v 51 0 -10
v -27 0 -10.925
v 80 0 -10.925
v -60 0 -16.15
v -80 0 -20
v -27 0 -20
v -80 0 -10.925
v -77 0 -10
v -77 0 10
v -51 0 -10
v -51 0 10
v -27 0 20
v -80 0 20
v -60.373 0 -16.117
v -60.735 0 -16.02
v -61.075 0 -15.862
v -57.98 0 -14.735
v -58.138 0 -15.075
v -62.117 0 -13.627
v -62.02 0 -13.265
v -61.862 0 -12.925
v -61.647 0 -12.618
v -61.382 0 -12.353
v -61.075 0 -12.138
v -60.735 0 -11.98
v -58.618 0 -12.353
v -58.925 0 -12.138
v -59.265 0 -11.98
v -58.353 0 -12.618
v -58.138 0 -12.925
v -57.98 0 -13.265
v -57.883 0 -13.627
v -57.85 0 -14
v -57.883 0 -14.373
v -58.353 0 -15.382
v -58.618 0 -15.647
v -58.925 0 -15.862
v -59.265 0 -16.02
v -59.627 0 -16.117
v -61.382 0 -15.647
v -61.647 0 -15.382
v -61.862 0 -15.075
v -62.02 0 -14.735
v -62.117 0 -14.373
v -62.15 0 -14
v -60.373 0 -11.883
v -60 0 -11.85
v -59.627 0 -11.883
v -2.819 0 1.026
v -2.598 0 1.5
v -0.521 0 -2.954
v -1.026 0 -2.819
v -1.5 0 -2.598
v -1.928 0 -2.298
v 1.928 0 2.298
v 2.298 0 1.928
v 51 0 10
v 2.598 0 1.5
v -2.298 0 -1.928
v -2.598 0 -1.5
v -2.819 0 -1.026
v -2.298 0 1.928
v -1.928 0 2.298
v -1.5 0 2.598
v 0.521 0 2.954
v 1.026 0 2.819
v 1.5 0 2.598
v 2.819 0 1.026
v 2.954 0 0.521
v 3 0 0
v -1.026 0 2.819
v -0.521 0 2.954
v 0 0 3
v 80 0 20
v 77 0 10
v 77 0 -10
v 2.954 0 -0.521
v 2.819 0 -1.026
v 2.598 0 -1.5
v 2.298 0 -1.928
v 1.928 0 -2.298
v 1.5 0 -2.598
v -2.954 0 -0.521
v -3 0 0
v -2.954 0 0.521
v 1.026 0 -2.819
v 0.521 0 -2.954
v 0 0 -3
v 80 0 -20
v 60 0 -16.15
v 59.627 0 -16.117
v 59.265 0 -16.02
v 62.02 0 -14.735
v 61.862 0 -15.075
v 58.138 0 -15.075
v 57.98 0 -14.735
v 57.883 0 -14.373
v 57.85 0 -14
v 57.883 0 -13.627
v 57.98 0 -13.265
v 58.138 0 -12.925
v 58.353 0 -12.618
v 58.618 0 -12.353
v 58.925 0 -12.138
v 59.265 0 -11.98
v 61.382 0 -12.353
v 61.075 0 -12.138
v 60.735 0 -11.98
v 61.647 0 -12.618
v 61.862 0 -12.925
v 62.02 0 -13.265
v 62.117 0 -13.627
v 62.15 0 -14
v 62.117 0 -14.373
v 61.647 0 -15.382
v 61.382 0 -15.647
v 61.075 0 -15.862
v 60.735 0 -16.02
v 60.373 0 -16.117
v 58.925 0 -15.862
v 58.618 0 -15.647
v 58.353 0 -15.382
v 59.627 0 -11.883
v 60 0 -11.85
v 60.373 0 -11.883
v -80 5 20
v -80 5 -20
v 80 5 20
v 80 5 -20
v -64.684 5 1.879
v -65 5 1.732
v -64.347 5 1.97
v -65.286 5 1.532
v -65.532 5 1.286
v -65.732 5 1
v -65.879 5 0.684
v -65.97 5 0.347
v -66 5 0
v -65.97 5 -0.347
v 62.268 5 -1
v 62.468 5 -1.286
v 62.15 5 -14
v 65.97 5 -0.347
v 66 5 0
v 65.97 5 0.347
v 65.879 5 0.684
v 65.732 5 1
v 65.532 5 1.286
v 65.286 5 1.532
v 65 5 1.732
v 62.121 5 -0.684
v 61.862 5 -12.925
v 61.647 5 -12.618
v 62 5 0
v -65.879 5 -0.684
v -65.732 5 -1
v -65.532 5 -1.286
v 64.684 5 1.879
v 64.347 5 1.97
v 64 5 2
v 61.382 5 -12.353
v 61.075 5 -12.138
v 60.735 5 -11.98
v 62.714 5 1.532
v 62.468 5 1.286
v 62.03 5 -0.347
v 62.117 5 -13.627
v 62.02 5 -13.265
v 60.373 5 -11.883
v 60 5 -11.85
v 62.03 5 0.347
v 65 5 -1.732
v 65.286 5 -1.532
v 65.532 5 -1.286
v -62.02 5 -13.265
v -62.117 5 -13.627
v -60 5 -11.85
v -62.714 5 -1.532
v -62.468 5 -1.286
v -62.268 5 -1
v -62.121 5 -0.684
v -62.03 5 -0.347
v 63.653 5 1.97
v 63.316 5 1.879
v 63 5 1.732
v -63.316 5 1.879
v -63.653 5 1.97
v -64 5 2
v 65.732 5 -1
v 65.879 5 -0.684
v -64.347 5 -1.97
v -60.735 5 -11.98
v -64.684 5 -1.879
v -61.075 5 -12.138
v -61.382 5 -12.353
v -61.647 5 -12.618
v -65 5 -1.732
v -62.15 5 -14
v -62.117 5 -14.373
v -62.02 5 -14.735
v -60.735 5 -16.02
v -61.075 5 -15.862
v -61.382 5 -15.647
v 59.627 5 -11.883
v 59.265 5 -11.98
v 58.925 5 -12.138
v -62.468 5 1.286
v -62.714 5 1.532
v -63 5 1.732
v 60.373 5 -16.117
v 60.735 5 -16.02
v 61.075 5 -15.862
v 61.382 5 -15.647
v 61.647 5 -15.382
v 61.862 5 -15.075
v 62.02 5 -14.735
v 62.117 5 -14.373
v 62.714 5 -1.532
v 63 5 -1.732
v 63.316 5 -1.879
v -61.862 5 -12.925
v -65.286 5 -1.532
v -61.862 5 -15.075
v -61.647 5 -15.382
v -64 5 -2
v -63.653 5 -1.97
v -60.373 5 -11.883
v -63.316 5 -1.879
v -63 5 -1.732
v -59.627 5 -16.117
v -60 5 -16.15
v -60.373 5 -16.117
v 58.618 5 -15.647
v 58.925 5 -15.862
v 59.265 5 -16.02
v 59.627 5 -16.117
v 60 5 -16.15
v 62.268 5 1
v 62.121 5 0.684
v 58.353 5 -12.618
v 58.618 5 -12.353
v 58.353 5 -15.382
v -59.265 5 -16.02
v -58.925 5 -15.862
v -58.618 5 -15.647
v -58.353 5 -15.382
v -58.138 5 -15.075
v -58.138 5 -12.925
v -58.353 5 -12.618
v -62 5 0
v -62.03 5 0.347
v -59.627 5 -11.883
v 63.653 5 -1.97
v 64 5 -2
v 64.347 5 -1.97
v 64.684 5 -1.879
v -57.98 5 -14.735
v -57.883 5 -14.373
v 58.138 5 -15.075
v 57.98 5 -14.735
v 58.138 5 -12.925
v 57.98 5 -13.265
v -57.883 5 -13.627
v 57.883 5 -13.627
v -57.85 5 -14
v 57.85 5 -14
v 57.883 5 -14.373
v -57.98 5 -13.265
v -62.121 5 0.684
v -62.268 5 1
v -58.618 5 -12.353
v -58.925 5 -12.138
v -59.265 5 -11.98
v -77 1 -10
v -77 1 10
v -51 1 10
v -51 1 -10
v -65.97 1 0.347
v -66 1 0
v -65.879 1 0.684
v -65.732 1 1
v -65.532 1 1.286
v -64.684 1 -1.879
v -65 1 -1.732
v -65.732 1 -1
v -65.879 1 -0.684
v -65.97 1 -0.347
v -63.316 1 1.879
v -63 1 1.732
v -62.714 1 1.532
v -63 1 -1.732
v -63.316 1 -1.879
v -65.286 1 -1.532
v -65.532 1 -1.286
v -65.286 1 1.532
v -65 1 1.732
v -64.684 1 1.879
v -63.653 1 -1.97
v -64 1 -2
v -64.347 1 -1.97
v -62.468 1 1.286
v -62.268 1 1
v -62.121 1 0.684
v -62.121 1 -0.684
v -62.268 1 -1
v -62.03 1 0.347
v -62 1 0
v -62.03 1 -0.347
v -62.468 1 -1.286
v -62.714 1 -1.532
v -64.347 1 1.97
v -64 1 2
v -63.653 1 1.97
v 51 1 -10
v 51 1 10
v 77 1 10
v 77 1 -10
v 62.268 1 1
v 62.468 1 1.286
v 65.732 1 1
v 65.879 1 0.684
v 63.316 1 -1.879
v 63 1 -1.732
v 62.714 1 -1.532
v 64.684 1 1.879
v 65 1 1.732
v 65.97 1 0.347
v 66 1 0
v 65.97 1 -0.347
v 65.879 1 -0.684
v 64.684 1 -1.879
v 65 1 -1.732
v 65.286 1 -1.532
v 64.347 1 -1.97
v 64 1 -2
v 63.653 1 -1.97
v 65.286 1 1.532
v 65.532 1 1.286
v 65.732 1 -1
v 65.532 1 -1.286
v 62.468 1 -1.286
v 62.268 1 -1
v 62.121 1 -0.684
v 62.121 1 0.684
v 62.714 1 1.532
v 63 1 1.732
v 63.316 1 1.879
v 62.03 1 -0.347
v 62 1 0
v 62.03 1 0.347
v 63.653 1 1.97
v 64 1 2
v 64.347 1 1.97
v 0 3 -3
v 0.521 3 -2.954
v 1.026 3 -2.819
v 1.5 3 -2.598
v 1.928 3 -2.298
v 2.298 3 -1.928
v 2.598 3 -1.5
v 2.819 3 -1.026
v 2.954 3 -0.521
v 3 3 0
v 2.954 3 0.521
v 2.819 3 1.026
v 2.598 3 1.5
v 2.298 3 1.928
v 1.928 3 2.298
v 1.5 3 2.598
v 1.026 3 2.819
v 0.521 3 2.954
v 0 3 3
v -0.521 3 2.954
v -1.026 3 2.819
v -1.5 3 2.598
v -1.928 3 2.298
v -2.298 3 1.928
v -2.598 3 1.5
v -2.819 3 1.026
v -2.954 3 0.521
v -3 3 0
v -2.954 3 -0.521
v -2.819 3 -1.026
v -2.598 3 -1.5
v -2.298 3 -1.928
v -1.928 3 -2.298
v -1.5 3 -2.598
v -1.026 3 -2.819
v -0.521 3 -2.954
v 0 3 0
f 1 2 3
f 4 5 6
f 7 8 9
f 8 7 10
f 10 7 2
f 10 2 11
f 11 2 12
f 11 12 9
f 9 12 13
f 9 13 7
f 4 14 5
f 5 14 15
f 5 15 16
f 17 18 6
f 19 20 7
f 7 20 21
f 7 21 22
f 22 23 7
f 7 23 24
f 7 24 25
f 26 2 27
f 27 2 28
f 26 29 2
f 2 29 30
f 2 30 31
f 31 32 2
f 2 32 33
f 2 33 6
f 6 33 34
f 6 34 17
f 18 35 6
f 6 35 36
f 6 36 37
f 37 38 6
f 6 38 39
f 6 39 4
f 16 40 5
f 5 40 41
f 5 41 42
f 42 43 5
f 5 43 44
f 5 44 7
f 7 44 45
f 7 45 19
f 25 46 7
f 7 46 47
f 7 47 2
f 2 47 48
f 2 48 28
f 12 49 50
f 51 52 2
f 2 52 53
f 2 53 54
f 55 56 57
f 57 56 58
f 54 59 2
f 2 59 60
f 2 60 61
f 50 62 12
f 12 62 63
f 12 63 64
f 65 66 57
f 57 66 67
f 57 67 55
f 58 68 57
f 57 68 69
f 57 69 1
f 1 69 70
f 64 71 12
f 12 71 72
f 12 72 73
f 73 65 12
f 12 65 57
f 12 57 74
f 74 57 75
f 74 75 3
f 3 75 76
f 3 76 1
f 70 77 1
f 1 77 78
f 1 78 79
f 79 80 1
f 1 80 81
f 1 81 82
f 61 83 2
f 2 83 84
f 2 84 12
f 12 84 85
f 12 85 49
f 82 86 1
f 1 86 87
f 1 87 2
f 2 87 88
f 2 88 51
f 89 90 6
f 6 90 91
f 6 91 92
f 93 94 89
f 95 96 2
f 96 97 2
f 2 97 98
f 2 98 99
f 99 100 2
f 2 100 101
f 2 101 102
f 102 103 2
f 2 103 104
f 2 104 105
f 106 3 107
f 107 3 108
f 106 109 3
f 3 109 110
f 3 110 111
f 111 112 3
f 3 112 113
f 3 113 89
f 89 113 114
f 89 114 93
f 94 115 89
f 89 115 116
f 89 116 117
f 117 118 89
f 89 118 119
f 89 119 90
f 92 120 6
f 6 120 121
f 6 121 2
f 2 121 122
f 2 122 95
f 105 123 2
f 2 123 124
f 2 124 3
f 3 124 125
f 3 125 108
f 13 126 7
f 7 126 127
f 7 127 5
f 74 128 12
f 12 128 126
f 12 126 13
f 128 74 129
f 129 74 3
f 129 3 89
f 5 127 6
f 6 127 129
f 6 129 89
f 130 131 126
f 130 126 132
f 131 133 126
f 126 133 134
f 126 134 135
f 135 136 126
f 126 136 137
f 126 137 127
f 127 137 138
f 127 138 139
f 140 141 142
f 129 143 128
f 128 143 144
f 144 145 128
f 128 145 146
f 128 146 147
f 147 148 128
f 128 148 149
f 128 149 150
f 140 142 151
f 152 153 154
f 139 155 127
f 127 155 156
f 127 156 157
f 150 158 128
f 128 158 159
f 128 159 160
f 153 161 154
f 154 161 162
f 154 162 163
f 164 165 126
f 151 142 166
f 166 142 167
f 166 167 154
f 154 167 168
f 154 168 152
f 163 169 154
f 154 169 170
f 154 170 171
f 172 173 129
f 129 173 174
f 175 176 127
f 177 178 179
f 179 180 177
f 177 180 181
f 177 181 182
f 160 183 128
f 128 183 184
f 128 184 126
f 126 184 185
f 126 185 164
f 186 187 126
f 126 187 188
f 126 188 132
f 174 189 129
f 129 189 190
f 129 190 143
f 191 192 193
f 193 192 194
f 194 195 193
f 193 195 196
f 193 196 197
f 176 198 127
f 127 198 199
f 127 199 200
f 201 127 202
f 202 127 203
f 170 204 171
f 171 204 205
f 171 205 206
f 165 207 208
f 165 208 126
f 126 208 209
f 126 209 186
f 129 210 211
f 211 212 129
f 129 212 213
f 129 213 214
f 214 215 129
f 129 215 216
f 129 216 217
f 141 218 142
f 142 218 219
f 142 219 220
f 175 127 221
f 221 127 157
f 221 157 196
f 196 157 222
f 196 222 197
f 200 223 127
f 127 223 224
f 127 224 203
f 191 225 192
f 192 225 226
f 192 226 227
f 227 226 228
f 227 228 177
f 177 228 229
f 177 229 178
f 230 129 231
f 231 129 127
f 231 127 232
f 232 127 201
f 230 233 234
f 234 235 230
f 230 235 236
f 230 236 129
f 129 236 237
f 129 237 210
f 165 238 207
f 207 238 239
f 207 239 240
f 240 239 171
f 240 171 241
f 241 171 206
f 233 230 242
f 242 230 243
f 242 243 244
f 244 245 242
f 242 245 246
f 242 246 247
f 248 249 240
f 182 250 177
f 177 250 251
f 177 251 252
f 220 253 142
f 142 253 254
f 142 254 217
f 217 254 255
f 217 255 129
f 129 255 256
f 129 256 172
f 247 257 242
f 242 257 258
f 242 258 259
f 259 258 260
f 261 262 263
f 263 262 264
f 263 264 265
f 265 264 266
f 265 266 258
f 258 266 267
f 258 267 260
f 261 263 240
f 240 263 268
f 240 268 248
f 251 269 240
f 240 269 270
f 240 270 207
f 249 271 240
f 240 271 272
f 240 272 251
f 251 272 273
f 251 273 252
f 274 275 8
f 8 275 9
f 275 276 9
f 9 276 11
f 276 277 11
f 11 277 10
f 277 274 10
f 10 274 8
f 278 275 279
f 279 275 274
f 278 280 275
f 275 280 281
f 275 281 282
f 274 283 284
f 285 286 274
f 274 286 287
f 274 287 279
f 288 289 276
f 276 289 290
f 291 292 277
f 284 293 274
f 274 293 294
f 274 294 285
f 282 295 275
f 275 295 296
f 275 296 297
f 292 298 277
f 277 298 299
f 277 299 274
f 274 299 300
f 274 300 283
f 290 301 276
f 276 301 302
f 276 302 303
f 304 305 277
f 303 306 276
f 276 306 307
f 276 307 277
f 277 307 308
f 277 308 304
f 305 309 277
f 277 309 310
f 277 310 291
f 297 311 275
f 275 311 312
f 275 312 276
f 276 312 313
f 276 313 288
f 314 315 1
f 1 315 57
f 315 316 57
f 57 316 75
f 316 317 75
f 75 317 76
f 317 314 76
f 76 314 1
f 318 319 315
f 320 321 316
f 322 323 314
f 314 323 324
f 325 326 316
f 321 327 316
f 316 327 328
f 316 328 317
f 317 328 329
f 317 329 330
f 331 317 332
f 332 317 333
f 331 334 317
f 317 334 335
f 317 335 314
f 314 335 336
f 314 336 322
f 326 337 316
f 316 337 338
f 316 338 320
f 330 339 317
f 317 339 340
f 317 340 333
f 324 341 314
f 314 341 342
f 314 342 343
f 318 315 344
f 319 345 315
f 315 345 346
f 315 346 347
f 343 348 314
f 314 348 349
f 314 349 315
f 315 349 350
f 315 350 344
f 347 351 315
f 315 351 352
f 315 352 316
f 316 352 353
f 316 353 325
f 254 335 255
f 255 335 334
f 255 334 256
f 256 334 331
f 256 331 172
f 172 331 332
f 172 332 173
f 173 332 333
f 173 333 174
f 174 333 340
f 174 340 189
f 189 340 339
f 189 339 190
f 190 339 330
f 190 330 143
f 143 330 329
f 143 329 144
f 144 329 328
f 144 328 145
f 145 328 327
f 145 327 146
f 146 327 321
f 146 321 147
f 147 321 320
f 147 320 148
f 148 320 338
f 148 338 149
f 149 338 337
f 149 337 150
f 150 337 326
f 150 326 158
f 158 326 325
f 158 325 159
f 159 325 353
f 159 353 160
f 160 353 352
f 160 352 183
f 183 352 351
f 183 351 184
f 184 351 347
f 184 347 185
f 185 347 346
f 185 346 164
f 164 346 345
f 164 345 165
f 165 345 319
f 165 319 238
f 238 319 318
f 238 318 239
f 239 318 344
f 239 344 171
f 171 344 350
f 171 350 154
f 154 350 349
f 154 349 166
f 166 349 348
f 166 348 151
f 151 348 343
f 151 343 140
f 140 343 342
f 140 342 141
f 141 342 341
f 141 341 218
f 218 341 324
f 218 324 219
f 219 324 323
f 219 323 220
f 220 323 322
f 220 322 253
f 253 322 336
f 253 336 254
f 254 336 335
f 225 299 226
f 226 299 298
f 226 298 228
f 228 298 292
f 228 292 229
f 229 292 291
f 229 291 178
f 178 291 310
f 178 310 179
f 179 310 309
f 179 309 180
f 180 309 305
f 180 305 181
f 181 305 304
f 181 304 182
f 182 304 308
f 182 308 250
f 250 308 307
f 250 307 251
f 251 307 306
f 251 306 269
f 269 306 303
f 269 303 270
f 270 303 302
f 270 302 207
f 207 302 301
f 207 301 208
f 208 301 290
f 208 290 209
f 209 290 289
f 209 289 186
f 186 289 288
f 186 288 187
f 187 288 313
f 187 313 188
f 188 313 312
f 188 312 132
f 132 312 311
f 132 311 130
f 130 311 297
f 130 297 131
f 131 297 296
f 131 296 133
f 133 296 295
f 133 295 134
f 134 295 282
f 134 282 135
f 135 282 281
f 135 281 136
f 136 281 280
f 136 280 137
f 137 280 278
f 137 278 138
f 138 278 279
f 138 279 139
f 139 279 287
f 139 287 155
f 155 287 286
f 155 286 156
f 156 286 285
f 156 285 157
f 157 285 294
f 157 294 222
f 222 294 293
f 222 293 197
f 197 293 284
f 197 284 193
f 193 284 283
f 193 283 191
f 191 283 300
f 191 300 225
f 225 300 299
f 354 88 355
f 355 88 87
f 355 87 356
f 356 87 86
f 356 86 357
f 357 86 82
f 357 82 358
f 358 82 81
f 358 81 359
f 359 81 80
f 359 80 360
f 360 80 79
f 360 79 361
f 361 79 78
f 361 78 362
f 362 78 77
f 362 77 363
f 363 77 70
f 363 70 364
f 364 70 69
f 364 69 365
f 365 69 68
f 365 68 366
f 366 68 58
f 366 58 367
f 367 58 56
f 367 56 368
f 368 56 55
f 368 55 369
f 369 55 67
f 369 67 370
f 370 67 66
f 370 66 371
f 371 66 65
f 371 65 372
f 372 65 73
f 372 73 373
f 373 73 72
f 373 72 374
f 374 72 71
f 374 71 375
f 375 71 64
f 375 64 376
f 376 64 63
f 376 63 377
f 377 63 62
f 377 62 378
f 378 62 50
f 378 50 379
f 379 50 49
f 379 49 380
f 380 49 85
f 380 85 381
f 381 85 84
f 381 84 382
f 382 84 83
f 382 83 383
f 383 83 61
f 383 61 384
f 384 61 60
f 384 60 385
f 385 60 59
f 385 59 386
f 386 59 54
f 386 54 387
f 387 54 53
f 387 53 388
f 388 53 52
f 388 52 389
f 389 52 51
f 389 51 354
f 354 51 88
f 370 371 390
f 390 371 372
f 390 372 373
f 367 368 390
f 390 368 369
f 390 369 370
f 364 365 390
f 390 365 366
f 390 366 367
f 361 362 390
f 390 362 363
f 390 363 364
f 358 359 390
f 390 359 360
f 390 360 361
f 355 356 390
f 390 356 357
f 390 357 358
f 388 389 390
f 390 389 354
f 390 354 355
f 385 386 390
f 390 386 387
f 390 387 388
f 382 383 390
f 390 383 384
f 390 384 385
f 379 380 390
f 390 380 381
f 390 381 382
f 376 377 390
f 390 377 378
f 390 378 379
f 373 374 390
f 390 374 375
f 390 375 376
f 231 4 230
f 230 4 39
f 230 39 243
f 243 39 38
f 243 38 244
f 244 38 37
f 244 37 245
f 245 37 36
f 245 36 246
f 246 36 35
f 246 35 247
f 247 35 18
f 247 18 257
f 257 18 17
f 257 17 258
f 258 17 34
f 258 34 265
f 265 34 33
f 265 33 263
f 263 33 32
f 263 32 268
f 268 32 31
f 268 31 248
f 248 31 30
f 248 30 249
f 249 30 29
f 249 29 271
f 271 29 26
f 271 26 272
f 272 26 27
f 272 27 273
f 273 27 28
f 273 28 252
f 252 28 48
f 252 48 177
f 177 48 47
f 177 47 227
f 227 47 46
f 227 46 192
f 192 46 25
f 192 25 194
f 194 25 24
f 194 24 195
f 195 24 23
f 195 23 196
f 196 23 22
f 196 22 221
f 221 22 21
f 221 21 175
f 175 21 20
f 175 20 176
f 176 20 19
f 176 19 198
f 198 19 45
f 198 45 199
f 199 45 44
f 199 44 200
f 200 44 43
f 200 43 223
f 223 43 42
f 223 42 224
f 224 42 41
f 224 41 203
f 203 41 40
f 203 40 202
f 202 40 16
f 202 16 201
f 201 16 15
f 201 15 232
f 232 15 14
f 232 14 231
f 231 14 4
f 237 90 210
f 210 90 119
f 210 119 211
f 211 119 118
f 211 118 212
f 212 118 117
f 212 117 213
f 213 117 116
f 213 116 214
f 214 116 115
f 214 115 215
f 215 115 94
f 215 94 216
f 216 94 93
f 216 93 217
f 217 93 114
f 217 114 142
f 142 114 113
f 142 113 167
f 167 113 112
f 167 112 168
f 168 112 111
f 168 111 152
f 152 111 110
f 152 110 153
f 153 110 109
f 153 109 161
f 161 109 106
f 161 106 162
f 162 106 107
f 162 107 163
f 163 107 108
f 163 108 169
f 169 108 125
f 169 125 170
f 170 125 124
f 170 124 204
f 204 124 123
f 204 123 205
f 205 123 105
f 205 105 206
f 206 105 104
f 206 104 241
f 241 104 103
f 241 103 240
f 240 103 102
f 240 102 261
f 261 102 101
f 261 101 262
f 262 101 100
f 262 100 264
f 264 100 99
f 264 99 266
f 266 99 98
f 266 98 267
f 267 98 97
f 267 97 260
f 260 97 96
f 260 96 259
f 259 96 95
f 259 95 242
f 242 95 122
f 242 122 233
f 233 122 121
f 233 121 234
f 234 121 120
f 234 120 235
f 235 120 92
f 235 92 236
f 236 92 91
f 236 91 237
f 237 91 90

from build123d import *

# Parameters (mm, degrees)
SK_PLATE_W              = 160
SK_PLATE_H              = 40
EX_PLATE_DEPTH          = 5
SK_PADPOCKETS_W         = 26
SK_PADPOCKETS_H         = 20
CUT_PADPOCKETS_DEPTH    = 1
SK_PADINSERTS_M3_R      = 2
CUT_PADINSERTS_M3_DEPTH = 5
SK_MAGNET_R             = 3
CUT_MAGNET_DEPTH        = 3
SK_FRAMEBOLTS_R         = 2.15
CUT_FRAMEBOLTS_DEPTH    = 5


with BuildPart() as part:
    # SK_Plate → EX_Plate (new body)
    with BuildSketch(Plane(origin=(0, 0, 0), x_dir=(1, 0, 0), z_dir=(0, 1, 0))):
        Rectangle(SK_PLATE_W, SK_PLATE_H)
    extrude(amount=EX_PLATE_DEPTH)

    # SK_PadPockets → CUT_PadPockets (cut)
    with BuildSketch(Plane(origin=(0, 0, 0), x_dir=(1, 0, 0), z_dir=(0, 1, 0))):
        with Locations((64, 0)):
            Rectangle(SK_PADPOCKETS_W, SK_PADPOCKETS_H)
        with Locations((-64, 0)):
            Rectangle(SK_PADPOCKETS_W, SK_PADPOCKETS_H)
    extrude(amount=CUT_PADPOCKETS_DEPTH, mode=Mode.SUBTRACT)

    # SK_PadInserts_M3 → CUT_PadInserts_M3 (cut)
    with BuildSketch(Plane(origin=(0, 0, 0), x_dir=(1, 0, 0), z_dir=(0, 1, 0))):
        with Locations((64, 0)):
            Circle(SK_PADINSERTS_M3_R)
        with Locations((-64, 0)):
            Circle(SK_PADINSERTS_M3_R)
    extrude(amount=CUT_PADINSERTS_M3_DEPTH, mode=Mode.SUBTRACT)

    # SK_Magnet → CUT_Magnet (cut)
    with BuildSketch(Plane(origin=(0, 0, 0), x_dir=(1, 0, 0), z_dir=(0, 1, 0))):
        Circle(SK_MAGNET_R)
    extrude(amount=CUT_MAGNET_DEPTH, mode=Mode.SUBTRACT)

    # SK_FrameBolts → CUT_FrameBolts (cut)
    with BuildSketch(Plane(origin=(0, 0, 0), x_dir=(1, 0, 0), z_dir=(0, 1, 0))):
        with Locations((60, 14)):
            Circle(SK_FRAMEBOLTS_R)
        with Locations((-60, 14)):
            Circle(SK_FRAMEBOLTS_R)
    extrude(amount=CUT_FRAMEBOLTS_DEPTH, mode=Mode.SUBTRACT)


solid = part.part
